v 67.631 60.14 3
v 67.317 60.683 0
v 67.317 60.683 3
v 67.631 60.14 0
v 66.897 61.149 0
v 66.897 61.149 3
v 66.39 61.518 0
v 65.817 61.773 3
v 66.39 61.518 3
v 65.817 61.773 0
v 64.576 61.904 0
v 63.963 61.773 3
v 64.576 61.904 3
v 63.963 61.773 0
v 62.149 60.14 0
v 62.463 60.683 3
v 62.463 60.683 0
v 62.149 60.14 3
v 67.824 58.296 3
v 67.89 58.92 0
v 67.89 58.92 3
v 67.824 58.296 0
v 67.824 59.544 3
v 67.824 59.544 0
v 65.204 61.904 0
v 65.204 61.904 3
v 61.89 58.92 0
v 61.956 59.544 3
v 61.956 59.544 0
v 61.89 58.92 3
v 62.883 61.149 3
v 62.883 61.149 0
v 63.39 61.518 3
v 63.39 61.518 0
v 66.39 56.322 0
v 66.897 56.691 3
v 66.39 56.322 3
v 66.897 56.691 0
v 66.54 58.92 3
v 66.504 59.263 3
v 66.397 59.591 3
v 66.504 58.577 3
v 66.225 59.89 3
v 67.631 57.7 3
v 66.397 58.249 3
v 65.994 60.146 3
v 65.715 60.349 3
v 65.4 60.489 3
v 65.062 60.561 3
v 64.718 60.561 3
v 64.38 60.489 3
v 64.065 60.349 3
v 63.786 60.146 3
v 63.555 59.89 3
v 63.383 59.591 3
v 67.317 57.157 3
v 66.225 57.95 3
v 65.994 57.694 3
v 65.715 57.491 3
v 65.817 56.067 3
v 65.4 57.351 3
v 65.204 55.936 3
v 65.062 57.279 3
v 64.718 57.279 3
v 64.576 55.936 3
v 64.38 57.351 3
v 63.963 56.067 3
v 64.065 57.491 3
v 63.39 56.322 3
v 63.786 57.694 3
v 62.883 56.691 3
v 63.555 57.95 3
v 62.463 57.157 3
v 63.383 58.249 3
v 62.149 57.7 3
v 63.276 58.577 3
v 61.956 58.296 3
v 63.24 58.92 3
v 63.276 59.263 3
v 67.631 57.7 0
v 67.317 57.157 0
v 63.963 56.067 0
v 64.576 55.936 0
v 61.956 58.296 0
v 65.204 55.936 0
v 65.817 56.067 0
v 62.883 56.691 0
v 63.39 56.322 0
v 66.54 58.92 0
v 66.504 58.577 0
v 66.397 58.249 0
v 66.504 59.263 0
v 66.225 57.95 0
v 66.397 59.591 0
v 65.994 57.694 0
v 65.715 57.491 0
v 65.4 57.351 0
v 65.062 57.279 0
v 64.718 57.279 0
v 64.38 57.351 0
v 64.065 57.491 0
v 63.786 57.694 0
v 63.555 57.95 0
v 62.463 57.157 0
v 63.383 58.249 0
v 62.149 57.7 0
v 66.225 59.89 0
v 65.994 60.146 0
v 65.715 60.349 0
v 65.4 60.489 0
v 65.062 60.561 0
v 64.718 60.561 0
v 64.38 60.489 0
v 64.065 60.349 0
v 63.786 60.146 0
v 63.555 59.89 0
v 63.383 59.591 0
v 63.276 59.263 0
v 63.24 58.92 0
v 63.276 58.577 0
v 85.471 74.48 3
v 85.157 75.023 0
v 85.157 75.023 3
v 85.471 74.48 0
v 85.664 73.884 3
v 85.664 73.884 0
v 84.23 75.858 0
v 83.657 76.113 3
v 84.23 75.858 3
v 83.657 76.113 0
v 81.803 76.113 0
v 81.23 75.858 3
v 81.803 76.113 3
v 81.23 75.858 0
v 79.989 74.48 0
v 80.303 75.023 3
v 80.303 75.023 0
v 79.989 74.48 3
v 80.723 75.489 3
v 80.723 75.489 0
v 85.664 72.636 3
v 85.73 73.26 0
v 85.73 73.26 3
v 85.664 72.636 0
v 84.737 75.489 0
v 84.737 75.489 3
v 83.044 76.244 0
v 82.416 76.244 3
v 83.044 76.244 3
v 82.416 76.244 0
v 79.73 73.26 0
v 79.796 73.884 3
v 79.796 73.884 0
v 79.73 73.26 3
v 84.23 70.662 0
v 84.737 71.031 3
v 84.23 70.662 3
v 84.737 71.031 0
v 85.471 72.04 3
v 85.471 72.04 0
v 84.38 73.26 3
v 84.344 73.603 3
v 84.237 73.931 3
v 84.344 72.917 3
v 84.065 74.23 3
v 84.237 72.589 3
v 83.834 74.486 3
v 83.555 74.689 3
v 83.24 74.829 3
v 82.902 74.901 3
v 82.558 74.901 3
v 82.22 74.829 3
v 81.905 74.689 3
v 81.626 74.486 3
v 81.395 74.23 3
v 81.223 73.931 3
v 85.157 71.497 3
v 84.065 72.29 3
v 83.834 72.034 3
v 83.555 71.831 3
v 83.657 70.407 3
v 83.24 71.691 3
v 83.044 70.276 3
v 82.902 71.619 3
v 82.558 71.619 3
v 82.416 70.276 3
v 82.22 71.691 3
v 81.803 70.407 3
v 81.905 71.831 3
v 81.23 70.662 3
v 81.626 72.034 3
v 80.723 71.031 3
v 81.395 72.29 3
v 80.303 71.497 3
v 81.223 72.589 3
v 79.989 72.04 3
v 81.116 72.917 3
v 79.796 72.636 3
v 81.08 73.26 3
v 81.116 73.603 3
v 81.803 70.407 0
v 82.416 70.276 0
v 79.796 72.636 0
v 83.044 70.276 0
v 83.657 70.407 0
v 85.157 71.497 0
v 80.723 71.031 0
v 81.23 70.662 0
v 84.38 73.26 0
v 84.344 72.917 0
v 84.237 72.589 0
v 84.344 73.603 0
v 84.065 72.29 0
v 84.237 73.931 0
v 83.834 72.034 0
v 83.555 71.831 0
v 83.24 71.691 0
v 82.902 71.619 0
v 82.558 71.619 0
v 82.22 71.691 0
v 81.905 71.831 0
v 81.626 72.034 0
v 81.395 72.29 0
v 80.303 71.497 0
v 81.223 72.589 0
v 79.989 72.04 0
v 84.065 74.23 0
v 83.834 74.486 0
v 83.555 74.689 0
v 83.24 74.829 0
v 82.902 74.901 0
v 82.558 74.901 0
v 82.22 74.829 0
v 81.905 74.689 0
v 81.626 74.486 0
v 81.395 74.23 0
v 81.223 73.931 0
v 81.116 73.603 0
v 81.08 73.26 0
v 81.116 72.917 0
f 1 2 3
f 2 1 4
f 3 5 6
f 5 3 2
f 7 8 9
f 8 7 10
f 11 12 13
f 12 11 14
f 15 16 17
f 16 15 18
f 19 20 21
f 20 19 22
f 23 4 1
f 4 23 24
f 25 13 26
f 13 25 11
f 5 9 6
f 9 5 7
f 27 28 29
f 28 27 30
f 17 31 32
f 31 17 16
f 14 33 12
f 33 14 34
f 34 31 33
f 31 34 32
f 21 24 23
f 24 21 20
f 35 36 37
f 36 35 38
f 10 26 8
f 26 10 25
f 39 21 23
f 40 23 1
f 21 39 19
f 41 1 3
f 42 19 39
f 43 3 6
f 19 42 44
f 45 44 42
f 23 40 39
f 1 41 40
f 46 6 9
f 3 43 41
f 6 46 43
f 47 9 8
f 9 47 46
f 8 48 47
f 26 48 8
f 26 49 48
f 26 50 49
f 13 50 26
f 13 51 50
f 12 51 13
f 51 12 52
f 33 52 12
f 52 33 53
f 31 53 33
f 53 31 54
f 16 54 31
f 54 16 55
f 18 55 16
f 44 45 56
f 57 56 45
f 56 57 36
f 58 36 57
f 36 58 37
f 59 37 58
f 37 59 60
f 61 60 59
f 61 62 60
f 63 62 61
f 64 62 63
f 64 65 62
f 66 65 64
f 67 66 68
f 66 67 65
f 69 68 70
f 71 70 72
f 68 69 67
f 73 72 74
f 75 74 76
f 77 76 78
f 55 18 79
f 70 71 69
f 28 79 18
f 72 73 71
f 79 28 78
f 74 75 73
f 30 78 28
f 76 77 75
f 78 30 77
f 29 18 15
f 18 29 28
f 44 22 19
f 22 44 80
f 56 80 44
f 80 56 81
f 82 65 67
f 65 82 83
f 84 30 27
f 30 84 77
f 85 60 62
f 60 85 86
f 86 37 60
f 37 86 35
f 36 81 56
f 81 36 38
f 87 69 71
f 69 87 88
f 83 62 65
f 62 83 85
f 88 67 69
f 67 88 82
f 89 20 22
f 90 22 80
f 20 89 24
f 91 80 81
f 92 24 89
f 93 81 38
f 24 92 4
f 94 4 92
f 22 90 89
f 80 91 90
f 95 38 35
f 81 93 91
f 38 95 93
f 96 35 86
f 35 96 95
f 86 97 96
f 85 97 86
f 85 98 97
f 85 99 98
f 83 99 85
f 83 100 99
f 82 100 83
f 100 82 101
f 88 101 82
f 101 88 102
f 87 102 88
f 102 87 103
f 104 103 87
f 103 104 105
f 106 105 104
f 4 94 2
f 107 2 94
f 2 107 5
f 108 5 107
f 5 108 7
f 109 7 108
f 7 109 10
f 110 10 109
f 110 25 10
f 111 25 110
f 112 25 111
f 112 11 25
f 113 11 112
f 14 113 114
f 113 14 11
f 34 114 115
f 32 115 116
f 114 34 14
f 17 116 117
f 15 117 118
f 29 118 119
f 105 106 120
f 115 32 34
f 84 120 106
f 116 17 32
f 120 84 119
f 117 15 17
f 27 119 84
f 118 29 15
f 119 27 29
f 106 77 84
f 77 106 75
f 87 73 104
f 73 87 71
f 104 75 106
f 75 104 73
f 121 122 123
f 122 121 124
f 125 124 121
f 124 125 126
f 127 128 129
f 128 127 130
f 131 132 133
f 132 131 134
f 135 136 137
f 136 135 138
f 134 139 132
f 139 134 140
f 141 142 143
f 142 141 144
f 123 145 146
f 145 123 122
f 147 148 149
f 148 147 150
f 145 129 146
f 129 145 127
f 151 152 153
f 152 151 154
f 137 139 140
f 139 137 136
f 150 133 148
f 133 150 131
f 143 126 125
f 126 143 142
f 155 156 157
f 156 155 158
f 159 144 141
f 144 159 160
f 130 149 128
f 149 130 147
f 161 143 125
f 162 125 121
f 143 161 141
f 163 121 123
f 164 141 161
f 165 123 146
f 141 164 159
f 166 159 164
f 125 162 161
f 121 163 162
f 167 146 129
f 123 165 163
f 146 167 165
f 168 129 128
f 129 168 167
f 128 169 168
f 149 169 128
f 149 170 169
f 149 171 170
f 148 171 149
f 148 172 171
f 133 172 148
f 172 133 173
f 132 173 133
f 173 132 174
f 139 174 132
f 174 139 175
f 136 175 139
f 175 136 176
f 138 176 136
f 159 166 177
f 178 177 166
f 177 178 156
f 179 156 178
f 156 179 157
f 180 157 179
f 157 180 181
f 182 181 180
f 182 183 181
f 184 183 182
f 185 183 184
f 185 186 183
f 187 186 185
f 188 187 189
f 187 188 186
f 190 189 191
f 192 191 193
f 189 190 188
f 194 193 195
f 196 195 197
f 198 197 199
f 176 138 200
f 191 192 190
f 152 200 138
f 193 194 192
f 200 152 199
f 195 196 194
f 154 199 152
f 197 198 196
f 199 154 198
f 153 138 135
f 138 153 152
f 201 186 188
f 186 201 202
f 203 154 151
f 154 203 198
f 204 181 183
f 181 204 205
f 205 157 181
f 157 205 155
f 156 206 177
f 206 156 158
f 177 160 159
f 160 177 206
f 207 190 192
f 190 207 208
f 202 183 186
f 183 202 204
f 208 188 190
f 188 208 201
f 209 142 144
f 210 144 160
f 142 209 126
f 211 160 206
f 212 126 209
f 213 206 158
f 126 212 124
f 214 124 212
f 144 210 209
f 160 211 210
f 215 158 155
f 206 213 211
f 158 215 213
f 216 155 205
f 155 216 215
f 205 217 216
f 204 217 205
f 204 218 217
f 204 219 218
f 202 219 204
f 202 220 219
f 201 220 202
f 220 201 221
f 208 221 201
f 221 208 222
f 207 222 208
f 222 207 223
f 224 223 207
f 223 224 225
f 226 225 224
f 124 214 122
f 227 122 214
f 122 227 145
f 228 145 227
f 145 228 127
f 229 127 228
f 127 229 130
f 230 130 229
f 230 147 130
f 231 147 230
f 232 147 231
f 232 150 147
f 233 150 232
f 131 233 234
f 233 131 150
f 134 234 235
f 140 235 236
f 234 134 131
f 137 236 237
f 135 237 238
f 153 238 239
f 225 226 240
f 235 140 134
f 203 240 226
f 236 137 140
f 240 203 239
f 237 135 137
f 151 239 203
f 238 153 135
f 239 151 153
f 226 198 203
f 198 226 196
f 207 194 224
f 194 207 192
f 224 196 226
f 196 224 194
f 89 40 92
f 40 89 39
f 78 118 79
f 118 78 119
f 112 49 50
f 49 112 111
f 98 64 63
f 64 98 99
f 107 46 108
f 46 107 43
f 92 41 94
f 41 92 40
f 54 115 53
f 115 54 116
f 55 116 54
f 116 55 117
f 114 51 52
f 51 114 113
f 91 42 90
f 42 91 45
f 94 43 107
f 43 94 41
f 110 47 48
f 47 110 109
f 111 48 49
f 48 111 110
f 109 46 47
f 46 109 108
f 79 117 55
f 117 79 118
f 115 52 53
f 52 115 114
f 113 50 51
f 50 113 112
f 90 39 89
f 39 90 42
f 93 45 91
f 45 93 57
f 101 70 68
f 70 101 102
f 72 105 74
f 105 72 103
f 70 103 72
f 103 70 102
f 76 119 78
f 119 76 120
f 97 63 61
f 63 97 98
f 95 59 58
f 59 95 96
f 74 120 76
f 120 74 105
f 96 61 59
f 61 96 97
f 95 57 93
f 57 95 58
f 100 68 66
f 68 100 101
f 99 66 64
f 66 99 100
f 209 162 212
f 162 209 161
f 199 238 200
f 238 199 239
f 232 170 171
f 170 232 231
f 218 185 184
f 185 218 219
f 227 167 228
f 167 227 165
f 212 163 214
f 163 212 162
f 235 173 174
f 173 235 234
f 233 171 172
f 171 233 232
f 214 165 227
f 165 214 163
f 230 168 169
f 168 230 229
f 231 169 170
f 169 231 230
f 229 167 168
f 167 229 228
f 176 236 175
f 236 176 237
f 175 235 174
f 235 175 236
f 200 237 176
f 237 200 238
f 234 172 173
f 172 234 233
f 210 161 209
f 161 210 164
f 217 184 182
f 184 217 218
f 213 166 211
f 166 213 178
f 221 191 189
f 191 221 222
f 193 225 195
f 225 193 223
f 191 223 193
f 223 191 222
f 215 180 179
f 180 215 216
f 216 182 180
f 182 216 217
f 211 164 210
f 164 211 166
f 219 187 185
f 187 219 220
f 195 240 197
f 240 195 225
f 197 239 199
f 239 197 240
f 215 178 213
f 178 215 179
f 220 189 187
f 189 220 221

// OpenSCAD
$fn = 30;

// 1 for the original hartk PCB to avoid the screws scratching up traces
// 3 as spacer between the PCB and the extruder

height=3;

holePos1_x = 64.89;
holePos1_y = 58.92;

holePos2_x = 82.73;
holePos2_y = 73.26;

holeDiam = 3.3;
outerHoleDiam = 6;




difference () {
mkholes(outerHoleDiam);
mkholes(holeDiam);
}

module mkholes (diam) {
translate([holePos1_x, holePos1_y]) { 
cylinder(d=diam,h=height);
}

translate([holePos2_x, holePos2_y]) { 
cylinder(d=diam,h=height);
}
}
